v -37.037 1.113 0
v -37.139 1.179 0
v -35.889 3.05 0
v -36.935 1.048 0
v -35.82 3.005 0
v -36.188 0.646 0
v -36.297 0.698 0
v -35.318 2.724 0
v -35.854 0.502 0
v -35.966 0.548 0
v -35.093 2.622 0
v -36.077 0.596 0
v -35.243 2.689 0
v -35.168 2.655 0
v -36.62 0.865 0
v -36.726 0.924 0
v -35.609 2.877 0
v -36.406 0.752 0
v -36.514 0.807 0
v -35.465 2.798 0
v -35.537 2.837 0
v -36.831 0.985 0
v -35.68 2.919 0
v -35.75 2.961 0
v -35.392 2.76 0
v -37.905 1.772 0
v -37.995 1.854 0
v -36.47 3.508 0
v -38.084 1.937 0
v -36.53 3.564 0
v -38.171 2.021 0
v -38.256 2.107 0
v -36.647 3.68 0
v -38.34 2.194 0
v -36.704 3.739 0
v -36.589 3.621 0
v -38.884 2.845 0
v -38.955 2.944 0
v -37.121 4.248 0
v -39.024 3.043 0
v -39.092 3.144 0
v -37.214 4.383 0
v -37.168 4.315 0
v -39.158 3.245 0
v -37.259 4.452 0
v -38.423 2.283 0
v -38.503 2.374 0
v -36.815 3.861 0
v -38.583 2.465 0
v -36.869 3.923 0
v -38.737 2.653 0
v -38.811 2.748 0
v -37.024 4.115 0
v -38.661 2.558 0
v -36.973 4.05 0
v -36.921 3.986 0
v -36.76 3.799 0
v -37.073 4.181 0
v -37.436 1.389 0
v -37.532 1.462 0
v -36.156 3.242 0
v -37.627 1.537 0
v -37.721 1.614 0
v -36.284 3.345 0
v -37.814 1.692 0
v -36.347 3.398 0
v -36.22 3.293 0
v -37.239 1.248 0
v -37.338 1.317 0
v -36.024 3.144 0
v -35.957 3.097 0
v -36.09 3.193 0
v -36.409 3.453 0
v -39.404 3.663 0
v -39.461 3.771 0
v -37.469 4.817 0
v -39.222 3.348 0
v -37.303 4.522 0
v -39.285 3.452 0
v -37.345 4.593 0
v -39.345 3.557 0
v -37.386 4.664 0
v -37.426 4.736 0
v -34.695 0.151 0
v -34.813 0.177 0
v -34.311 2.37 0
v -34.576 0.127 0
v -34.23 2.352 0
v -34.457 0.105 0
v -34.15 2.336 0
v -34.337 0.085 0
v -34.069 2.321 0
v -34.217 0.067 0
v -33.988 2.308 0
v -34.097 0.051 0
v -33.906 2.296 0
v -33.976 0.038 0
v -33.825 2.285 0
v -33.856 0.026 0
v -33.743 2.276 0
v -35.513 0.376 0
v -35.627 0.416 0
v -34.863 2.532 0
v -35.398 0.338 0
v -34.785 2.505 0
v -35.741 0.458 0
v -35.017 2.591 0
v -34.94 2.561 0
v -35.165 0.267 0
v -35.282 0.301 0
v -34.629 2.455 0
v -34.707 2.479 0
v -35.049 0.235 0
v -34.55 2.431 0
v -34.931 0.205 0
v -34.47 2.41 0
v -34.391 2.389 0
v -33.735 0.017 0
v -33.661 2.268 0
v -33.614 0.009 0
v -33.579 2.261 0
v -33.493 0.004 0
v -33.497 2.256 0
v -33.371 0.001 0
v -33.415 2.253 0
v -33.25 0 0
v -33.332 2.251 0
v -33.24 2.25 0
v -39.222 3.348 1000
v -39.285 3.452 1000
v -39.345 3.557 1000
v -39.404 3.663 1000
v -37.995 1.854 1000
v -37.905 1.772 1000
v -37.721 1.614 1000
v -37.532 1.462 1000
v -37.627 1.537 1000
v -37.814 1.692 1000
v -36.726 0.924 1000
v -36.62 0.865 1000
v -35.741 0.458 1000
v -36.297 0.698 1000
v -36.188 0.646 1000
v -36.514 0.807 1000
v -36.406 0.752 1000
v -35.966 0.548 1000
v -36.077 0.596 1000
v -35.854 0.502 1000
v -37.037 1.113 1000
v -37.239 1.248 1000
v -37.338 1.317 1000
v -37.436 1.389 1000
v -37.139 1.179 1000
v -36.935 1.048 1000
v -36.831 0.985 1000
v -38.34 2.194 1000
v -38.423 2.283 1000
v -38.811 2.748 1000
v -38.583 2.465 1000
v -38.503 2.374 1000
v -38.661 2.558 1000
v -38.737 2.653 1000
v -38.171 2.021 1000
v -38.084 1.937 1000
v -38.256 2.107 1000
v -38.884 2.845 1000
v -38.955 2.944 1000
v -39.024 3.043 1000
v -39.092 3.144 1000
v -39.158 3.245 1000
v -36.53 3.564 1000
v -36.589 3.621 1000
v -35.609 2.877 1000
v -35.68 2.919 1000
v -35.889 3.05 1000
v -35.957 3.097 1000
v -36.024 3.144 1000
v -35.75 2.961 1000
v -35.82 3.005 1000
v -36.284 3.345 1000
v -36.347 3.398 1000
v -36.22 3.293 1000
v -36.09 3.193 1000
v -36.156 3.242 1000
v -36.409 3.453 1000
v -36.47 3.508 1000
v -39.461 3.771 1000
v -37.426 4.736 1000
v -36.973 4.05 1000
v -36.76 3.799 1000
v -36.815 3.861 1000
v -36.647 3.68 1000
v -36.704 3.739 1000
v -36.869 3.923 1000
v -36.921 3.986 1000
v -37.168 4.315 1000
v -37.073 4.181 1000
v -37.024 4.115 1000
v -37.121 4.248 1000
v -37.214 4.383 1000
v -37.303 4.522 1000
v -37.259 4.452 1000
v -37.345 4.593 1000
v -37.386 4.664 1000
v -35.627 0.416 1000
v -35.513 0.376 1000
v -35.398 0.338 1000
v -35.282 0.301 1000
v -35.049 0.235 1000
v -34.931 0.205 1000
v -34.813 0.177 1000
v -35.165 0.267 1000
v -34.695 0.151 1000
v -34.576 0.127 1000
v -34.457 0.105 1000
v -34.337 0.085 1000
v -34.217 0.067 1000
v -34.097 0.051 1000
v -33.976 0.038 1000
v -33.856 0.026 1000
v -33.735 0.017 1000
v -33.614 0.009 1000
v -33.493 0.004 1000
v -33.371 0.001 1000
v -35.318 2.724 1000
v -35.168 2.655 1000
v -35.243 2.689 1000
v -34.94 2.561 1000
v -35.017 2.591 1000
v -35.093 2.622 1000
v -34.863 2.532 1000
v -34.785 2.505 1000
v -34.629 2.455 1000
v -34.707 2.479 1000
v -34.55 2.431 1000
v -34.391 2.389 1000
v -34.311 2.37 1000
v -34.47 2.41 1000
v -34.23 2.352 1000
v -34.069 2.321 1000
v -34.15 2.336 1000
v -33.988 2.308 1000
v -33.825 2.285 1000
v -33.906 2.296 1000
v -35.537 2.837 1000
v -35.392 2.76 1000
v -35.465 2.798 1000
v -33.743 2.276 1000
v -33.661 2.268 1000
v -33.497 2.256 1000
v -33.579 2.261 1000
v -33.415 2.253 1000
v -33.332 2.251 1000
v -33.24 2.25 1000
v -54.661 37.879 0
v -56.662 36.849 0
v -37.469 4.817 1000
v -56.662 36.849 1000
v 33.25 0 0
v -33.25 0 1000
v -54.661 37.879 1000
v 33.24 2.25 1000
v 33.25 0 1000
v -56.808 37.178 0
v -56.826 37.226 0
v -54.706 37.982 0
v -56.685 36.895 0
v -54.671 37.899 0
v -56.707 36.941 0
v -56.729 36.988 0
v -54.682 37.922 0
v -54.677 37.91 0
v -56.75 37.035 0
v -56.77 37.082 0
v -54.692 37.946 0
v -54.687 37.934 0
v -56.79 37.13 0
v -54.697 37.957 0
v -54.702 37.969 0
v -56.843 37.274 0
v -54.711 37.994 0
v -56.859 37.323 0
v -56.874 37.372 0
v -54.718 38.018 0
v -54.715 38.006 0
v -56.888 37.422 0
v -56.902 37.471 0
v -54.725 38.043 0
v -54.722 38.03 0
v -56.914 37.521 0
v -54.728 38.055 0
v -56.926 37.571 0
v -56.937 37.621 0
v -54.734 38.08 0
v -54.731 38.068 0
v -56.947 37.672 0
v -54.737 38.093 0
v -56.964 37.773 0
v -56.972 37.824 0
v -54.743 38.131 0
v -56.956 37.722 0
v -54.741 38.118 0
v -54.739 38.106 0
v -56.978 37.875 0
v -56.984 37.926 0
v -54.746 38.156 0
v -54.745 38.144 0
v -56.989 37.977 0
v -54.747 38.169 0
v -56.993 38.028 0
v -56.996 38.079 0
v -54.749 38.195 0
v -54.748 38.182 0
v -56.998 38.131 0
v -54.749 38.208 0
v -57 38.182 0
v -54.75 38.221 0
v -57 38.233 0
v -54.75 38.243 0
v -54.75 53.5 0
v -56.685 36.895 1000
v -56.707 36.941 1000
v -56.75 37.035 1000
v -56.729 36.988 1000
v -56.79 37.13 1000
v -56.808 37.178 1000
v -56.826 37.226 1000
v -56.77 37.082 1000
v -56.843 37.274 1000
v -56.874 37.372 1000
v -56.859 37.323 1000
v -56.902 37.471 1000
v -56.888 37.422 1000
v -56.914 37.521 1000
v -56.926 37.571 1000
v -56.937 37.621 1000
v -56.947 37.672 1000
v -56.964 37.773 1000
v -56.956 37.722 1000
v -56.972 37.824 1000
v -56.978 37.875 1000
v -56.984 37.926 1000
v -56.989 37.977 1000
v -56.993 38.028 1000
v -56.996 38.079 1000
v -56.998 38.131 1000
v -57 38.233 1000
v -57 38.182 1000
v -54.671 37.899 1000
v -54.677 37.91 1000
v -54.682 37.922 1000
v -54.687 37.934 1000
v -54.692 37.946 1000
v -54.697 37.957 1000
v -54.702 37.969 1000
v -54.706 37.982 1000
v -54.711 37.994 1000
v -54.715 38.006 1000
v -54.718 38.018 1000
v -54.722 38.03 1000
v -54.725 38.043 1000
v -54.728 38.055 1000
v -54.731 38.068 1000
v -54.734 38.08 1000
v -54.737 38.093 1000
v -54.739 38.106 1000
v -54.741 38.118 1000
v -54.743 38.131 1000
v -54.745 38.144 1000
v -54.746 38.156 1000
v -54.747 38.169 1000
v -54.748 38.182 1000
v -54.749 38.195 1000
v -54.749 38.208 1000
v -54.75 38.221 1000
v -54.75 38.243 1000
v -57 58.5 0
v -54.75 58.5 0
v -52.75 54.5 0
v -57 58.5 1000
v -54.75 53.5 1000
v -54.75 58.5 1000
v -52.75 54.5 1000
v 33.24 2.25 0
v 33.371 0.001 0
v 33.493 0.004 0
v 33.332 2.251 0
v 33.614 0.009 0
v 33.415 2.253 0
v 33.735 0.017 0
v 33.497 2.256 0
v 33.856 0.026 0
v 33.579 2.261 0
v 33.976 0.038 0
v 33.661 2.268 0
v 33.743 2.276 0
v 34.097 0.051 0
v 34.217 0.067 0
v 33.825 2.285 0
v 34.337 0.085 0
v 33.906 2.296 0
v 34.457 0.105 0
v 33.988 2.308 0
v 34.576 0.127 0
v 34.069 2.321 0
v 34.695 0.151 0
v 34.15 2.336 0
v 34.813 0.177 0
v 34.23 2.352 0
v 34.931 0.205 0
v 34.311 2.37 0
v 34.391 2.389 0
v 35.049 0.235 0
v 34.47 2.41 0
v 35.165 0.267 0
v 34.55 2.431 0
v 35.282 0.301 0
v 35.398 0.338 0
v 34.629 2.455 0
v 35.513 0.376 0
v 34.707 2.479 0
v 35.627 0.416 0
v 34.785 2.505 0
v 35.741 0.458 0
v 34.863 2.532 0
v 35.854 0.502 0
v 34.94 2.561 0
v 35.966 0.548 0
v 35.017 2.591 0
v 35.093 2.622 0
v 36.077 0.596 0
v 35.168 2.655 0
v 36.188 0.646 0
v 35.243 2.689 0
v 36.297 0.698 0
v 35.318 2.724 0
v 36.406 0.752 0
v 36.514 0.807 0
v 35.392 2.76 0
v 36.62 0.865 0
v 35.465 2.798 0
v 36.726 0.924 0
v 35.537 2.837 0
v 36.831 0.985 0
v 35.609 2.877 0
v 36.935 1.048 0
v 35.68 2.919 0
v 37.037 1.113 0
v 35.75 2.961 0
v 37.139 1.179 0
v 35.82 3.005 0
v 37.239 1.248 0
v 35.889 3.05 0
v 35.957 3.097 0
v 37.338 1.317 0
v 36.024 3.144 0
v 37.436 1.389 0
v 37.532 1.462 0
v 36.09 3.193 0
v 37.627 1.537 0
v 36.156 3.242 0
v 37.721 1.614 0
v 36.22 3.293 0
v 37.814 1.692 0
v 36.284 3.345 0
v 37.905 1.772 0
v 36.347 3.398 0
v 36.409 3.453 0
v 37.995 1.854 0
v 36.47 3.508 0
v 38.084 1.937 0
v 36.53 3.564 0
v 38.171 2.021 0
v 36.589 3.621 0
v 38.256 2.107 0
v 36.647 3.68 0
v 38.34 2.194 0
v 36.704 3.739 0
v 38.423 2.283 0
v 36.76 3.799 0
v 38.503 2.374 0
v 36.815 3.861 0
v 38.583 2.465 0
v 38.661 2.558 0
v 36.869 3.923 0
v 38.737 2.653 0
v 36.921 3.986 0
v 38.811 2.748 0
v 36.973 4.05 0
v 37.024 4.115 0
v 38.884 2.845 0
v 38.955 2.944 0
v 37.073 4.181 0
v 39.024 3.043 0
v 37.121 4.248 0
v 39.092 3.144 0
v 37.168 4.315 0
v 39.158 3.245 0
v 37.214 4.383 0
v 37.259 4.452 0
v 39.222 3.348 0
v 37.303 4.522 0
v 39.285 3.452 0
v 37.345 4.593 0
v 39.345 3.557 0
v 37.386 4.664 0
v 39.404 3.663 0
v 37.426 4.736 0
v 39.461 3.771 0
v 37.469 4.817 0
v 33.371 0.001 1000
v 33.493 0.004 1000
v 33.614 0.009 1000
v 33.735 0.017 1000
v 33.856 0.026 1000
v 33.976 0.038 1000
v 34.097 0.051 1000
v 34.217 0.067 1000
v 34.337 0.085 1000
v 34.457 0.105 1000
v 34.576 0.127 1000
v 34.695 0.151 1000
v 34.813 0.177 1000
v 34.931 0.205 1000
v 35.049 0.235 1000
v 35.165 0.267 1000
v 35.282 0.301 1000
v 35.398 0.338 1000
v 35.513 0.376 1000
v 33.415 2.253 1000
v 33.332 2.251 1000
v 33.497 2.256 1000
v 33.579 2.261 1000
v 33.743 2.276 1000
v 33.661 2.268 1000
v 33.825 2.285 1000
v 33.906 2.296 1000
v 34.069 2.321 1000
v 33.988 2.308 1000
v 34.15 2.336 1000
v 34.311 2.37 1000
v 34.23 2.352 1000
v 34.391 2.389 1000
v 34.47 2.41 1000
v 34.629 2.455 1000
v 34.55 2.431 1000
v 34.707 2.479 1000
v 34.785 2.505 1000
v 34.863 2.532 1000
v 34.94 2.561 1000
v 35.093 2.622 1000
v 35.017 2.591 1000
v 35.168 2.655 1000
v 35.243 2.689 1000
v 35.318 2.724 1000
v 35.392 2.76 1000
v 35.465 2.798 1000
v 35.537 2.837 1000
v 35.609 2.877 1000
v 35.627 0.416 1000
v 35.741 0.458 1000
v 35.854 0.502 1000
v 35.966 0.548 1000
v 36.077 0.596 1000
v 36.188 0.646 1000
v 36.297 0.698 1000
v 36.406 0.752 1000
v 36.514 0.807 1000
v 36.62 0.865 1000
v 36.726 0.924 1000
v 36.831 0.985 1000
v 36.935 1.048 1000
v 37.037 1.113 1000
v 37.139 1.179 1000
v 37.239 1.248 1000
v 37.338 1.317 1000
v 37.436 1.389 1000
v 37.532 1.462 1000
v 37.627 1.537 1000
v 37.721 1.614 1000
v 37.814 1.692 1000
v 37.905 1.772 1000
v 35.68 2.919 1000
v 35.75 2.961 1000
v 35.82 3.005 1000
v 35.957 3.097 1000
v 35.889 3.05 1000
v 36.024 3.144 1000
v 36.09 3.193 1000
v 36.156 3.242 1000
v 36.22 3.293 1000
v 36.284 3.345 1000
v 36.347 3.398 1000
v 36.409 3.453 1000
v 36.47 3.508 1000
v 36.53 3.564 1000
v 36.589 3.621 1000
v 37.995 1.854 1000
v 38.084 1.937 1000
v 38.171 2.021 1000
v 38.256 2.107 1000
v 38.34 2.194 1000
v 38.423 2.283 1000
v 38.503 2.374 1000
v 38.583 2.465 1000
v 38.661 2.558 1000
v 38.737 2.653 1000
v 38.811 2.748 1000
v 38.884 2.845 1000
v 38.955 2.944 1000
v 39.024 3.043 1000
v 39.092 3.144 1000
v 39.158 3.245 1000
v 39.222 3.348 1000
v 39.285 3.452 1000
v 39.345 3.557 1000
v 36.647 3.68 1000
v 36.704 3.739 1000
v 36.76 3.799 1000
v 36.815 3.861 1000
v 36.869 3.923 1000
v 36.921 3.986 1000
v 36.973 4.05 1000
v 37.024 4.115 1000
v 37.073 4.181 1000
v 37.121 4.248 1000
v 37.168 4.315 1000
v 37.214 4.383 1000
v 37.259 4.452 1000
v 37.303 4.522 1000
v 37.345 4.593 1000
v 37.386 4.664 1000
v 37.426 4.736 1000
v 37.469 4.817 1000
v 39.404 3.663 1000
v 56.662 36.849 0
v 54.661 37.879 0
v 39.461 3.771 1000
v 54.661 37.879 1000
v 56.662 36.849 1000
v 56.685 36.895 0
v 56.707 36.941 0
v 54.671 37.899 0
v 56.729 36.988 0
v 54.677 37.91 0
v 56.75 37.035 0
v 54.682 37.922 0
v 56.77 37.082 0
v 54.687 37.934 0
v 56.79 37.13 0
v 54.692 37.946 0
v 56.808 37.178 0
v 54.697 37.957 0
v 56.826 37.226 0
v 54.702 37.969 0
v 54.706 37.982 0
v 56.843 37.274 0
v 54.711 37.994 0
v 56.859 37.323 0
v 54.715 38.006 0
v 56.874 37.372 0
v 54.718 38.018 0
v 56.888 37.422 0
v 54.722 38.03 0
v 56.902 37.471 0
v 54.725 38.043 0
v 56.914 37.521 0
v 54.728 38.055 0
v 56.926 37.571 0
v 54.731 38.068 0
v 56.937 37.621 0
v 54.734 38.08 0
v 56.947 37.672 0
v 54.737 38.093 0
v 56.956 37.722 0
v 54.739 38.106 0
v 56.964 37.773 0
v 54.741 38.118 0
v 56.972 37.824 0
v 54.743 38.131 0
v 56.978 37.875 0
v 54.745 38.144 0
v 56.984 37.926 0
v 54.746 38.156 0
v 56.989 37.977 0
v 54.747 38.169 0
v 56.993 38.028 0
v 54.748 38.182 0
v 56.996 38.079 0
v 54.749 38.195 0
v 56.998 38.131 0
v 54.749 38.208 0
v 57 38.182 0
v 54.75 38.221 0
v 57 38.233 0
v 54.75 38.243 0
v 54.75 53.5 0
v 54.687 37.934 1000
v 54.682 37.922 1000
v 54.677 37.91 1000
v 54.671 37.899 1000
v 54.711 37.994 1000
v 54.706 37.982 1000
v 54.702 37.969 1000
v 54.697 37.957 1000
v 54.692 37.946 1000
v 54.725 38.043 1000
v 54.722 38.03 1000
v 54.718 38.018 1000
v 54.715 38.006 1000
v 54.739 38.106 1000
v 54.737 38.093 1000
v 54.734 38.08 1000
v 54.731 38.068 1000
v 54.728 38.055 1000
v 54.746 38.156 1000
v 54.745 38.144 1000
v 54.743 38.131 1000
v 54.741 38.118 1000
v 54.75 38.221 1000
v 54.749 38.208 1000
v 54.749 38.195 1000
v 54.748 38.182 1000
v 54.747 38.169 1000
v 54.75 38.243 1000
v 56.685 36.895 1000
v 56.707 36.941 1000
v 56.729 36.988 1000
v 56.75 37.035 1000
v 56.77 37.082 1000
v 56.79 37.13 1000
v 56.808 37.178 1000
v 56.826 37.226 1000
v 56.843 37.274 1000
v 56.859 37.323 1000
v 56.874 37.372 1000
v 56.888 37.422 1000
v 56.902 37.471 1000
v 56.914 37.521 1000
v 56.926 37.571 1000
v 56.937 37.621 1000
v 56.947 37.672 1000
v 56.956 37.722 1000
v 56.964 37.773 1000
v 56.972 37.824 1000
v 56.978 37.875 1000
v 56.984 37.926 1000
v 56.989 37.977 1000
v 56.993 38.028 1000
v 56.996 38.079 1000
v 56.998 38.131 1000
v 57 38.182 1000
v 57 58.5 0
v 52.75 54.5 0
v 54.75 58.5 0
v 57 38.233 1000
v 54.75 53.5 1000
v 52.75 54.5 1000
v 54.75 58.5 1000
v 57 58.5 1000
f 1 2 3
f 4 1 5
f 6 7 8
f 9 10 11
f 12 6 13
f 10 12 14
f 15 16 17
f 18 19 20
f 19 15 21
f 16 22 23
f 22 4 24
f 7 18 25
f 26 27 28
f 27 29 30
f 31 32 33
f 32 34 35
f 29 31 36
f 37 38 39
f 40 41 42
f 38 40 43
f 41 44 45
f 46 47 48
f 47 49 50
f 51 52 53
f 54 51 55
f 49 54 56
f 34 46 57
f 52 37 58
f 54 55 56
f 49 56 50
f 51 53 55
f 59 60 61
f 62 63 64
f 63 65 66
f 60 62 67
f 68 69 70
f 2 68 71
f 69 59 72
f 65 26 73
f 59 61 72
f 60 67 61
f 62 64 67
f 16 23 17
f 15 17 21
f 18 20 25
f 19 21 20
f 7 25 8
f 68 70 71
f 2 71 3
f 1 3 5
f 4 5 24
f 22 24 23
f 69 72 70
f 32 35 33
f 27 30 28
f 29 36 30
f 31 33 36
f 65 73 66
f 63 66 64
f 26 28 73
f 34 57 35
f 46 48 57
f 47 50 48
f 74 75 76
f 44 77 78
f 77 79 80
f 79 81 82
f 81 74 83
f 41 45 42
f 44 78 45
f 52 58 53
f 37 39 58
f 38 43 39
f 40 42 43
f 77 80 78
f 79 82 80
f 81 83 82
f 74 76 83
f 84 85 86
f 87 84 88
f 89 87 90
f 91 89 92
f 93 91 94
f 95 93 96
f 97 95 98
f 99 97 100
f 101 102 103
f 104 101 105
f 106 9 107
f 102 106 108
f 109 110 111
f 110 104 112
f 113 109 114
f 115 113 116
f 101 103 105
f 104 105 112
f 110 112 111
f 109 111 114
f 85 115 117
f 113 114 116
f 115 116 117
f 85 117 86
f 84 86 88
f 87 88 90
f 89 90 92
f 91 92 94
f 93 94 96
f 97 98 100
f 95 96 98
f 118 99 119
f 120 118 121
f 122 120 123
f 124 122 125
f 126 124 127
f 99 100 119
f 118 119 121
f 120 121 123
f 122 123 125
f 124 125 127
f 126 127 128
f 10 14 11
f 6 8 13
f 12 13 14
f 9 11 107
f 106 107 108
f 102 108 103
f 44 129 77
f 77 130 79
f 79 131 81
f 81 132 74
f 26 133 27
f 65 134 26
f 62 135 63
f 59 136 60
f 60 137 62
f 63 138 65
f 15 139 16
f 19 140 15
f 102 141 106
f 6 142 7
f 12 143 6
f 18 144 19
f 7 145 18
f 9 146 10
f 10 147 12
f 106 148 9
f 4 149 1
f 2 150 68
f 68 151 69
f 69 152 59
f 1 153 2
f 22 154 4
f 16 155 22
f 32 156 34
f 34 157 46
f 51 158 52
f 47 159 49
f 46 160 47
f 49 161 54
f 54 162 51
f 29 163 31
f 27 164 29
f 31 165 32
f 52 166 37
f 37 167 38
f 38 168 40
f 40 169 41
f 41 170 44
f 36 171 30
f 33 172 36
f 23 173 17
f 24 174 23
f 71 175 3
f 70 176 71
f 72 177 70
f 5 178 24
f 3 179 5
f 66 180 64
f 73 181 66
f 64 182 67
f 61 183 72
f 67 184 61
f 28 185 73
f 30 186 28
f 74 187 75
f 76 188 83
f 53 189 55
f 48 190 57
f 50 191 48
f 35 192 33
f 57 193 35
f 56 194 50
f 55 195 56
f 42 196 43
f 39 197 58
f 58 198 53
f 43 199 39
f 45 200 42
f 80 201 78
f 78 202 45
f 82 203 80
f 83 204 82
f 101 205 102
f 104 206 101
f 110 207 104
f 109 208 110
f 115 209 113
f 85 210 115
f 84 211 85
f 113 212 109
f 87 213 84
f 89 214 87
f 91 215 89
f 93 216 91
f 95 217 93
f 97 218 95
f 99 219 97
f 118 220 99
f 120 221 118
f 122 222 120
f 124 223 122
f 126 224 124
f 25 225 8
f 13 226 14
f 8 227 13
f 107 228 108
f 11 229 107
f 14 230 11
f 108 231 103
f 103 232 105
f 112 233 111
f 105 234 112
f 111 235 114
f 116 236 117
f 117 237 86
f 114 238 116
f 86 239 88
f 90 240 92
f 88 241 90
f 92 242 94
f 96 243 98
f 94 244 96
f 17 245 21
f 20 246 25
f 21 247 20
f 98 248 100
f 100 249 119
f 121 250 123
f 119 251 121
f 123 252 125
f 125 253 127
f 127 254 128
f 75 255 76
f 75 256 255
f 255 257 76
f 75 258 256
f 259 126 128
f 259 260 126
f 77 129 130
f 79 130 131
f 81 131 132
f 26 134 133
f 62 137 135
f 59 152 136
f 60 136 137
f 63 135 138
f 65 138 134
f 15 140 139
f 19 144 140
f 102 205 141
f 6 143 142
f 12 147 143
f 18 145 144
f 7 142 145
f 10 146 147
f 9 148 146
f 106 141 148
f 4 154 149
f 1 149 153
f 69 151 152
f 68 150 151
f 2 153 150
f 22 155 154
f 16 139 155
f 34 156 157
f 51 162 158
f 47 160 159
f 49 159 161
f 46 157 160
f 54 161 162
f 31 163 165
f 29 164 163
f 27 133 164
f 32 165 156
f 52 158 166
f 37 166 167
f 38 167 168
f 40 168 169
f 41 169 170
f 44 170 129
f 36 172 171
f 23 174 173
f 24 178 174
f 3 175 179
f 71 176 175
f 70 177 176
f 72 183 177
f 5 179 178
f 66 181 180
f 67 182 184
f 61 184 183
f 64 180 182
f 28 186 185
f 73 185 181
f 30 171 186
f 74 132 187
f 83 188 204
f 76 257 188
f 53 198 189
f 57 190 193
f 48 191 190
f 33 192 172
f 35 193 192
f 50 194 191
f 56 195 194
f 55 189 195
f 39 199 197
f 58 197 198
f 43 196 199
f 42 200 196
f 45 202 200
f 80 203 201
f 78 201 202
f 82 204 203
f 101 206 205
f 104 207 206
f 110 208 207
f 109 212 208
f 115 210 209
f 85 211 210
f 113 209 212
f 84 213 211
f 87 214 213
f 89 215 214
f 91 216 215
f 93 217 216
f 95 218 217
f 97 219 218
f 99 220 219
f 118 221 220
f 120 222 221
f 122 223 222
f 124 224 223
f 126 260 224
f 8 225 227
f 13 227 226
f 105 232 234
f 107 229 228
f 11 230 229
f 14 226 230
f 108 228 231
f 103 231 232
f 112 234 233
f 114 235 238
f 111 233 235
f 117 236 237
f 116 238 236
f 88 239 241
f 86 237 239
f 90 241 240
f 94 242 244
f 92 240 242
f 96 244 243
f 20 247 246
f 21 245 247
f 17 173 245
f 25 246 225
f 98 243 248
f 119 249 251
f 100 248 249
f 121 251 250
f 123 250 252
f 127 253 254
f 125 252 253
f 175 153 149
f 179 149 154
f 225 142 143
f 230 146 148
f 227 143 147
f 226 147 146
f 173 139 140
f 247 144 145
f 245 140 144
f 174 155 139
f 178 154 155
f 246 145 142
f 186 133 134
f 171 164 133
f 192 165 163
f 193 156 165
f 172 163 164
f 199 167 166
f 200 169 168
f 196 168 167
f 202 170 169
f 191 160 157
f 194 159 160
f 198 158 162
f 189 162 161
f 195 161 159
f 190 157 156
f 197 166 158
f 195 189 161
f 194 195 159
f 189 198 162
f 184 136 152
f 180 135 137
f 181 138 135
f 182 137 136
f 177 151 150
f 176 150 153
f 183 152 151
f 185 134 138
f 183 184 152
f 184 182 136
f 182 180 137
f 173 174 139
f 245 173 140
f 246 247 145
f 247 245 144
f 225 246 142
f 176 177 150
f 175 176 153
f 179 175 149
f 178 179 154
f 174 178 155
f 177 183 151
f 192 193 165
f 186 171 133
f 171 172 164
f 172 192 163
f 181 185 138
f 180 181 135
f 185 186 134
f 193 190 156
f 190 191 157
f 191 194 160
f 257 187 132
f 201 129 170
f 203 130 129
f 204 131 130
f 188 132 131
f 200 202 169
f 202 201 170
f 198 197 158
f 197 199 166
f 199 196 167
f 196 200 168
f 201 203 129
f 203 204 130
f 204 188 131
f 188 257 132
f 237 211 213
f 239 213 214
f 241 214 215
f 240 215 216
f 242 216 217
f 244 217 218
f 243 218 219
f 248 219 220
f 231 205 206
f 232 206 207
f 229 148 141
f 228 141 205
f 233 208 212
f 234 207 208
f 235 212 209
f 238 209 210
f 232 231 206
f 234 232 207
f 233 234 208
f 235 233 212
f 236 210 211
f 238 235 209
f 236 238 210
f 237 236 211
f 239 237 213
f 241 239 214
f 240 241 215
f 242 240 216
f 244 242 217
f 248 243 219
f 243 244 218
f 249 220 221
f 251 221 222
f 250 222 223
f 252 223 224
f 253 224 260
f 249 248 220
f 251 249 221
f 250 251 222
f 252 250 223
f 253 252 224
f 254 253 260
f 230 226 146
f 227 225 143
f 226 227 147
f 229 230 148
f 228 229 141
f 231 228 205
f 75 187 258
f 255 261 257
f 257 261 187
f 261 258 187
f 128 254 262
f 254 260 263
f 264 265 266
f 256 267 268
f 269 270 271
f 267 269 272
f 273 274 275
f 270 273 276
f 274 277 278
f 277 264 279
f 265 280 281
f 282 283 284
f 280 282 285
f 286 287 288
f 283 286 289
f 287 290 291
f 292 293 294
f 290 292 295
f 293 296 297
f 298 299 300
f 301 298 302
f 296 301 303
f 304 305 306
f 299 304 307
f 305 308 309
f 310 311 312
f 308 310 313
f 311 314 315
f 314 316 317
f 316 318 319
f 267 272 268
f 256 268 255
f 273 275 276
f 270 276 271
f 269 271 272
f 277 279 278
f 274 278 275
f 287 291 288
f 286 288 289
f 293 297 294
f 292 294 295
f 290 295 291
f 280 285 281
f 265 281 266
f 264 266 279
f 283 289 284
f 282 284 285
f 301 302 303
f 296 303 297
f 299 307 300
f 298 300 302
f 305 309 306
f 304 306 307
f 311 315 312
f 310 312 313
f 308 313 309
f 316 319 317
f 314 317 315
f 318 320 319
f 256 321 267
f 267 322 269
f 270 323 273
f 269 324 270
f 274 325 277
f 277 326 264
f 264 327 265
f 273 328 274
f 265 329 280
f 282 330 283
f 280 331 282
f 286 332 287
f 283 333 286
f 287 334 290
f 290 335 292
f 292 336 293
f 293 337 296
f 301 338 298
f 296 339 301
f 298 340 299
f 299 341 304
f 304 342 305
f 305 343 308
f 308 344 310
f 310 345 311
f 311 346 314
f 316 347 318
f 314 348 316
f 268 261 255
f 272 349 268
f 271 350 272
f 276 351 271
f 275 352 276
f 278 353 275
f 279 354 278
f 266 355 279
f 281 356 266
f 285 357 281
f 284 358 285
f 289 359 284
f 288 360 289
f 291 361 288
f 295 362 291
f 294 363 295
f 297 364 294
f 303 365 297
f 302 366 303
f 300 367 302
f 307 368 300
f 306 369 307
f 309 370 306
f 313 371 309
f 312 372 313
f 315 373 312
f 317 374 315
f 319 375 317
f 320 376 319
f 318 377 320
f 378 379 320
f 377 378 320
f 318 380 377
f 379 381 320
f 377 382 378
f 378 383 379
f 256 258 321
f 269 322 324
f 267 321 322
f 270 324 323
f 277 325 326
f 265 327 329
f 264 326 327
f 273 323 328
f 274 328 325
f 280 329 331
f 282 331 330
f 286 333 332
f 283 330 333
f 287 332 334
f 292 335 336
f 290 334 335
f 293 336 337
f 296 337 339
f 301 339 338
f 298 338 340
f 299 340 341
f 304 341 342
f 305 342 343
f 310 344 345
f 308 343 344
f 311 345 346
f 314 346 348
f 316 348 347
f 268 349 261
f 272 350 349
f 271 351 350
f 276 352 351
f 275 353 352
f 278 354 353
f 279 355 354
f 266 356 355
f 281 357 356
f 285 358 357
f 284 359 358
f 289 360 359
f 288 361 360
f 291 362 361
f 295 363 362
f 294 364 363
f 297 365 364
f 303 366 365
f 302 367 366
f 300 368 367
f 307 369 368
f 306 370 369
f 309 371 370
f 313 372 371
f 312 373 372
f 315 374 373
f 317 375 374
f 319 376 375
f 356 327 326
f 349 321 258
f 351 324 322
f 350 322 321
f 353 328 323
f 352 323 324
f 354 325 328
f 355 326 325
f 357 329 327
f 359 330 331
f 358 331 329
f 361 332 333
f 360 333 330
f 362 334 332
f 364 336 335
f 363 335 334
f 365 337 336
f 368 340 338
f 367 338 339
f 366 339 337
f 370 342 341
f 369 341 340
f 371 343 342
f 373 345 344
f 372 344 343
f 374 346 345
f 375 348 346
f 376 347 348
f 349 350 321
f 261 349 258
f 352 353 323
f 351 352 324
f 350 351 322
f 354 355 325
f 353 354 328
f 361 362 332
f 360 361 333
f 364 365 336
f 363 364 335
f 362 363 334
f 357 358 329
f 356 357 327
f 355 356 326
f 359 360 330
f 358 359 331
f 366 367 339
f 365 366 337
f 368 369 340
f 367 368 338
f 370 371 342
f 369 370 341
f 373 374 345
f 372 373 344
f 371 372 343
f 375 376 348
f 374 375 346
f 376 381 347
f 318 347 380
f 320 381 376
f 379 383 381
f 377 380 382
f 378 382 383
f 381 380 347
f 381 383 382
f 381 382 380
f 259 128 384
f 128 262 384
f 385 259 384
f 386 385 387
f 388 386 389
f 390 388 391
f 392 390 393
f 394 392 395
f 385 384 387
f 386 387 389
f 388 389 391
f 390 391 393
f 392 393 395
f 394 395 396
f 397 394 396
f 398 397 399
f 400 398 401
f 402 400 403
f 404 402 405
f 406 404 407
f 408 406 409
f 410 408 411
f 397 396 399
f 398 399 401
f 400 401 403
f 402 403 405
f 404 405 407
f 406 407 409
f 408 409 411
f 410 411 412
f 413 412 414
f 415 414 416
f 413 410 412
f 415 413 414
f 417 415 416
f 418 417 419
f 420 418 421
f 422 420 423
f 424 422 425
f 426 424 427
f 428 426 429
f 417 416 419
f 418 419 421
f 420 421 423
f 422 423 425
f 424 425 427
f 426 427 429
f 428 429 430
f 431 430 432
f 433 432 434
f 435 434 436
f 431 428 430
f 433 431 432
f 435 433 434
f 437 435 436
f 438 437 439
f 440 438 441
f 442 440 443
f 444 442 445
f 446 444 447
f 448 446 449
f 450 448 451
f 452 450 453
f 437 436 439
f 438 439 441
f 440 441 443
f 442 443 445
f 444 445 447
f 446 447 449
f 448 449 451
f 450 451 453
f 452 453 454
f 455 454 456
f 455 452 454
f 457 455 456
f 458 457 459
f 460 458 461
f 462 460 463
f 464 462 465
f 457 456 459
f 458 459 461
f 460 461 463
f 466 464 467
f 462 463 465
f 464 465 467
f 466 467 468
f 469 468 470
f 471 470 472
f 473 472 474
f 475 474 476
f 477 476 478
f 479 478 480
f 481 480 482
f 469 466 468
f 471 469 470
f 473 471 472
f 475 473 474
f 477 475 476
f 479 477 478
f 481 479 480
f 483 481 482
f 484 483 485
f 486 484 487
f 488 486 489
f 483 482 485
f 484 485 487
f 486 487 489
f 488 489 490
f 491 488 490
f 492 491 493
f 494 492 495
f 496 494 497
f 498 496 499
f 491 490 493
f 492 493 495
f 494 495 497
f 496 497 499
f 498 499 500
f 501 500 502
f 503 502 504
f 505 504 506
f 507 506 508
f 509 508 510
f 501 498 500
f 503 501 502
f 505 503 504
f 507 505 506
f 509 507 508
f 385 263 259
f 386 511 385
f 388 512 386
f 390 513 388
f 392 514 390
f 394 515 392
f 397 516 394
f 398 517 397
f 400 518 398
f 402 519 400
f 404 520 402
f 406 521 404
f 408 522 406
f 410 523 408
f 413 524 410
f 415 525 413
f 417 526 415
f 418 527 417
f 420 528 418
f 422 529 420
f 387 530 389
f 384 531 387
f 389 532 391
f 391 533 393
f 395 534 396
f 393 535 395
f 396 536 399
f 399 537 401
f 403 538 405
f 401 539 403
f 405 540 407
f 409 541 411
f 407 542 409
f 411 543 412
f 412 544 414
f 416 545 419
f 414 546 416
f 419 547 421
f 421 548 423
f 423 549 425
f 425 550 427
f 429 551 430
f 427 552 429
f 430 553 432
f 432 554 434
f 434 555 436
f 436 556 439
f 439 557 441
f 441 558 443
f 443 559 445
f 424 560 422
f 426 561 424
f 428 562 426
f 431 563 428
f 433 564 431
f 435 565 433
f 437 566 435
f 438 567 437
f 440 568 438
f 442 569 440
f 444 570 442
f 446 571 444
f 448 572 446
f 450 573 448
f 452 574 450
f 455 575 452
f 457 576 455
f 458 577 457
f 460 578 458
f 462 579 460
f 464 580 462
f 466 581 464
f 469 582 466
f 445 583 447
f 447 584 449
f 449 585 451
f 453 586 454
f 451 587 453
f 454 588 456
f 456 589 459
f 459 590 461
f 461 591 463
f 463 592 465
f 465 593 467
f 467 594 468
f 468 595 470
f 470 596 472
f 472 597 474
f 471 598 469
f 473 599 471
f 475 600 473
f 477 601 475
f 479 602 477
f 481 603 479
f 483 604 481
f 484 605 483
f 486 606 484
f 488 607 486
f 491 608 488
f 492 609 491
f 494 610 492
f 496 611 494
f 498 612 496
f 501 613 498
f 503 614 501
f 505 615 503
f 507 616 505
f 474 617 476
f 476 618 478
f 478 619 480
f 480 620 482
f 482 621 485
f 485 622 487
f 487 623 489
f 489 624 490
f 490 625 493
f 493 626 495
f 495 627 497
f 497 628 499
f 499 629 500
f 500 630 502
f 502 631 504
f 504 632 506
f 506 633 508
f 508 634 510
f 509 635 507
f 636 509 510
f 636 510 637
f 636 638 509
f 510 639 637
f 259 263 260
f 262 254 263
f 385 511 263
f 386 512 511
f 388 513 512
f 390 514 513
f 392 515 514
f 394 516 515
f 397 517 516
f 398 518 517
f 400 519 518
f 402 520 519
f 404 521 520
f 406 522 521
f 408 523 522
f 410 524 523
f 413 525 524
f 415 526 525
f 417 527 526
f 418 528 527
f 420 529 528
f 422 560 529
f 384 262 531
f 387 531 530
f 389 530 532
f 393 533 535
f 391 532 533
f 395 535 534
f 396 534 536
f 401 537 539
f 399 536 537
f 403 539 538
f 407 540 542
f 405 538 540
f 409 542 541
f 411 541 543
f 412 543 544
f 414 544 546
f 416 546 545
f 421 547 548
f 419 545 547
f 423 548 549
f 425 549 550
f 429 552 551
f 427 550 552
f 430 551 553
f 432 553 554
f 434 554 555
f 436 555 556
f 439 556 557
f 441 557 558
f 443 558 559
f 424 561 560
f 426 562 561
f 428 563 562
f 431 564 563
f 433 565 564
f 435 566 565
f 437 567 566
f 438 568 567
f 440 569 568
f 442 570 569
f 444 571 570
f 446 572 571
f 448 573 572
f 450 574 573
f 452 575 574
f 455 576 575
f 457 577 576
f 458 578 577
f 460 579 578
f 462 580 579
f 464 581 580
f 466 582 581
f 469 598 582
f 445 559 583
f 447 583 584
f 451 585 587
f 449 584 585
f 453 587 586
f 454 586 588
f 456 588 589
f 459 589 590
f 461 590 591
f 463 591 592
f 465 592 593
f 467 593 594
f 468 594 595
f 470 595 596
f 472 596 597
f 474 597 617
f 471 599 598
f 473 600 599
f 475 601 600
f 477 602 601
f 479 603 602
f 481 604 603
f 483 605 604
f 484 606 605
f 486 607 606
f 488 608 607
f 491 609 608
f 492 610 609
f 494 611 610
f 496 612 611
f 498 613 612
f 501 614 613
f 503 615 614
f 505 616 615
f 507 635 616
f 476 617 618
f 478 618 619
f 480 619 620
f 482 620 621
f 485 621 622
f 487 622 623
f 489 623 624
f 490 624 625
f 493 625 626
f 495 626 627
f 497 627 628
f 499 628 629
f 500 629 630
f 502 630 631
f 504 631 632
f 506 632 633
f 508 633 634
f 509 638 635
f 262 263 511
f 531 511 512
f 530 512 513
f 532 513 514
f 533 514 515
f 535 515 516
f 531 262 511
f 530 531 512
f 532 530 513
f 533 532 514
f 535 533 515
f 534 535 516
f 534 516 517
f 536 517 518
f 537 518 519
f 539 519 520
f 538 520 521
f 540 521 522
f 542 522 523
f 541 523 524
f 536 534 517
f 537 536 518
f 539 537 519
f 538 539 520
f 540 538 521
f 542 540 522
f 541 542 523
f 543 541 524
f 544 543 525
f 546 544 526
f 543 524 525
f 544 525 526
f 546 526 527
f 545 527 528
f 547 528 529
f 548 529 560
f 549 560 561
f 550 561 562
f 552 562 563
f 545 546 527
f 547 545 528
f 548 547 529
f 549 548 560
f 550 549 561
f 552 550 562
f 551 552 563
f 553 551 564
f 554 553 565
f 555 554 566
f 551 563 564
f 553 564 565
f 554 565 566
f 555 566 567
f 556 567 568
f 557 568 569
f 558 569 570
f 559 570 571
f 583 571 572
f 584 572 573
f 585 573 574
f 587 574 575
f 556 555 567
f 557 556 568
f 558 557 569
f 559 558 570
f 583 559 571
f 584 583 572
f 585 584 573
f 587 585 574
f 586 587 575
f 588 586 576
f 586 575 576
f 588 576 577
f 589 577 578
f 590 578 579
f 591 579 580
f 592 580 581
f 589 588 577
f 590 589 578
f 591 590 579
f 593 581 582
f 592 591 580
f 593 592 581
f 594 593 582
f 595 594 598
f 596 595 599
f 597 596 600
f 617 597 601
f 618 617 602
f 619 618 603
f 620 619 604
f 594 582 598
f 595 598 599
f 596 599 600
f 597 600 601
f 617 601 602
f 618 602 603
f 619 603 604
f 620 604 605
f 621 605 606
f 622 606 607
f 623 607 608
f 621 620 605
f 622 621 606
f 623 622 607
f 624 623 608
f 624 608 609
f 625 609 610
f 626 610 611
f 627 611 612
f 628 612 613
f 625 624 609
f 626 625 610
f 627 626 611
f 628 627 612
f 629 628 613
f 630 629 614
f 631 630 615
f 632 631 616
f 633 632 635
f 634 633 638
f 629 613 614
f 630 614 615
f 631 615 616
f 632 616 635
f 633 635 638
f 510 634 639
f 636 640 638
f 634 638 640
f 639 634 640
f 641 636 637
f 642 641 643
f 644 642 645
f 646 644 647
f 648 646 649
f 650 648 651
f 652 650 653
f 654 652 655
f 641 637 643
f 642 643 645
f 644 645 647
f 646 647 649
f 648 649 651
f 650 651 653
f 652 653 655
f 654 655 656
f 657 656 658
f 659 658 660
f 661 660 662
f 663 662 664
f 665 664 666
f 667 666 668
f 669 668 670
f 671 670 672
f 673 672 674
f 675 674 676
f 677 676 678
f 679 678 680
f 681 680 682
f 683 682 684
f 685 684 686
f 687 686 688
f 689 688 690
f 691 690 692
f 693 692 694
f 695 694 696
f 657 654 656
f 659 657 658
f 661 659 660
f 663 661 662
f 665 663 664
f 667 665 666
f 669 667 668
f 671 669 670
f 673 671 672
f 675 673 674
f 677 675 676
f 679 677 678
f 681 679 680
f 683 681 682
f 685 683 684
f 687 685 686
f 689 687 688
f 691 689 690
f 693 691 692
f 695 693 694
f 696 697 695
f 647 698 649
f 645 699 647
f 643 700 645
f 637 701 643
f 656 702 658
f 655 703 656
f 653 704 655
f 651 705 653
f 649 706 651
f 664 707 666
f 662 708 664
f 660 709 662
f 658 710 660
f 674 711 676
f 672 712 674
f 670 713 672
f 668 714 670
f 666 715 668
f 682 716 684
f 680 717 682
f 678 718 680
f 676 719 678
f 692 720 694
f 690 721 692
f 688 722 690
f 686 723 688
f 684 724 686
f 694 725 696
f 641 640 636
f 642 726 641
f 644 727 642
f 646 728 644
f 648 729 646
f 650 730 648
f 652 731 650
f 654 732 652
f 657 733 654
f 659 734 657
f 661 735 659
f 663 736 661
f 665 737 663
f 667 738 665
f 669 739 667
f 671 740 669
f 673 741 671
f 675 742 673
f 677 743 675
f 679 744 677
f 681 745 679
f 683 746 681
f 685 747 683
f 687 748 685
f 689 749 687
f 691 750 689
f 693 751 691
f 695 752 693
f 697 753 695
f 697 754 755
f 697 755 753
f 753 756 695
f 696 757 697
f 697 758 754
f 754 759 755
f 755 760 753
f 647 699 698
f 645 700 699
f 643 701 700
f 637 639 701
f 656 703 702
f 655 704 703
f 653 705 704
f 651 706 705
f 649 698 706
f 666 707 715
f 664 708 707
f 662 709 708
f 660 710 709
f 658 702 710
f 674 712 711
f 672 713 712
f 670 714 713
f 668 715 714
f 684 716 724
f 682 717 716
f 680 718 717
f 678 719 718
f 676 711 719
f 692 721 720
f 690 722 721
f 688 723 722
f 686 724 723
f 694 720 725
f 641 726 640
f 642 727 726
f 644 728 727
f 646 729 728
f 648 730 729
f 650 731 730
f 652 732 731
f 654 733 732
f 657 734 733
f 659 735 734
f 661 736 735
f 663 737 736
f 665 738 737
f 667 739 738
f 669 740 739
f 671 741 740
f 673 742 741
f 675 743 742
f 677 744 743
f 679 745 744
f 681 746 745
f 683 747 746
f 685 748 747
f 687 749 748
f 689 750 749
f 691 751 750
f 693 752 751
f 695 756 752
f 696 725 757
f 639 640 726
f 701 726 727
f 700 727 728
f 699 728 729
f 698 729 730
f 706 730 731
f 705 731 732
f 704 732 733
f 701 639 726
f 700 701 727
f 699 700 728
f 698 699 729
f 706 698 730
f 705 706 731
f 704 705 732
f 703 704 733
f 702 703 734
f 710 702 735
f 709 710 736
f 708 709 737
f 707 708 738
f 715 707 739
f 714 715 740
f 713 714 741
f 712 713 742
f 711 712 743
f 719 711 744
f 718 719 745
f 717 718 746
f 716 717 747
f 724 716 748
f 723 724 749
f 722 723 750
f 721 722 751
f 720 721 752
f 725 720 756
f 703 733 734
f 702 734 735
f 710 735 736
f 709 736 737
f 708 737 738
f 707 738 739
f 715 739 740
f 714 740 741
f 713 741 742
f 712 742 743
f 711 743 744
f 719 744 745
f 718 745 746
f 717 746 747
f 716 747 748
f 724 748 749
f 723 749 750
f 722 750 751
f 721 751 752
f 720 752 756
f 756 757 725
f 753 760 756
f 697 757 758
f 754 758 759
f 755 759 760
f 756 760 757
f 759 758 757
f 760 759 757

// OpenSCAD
$fn = 50;

difference() {
	union() {
		linear_extrude(height = 1000.0) {
			polygon(points = [[56.9995601, 38.1820114], [56.9982404, 38.1306519], [56.9960415, 38.0793225], [56.9929638, 38.0280383], [56.9890084, 37.9768144], [56.9841763, 37.9256657], [56.978469, 37.8746072], [56.9718882, 37.823654], [56.9644358, 37.7728209], [56.956114, 37.7221229], [56.9469252, 37.6715749], [56.9368722, 37.6211916], [56.9259578, 37.5709879], [56.9141852, 37.5209784], [56.901558, 37.4711779], [56.8880798, 37.4216009], [56.8737546, 37.372262], [56.8585866, 37.3231757], [56.8425802, 37.2743563], [56.8257401, 37.2258182], [56.8080713, 37.1775755], [56.7895789, 37.1296426], [56.7702684, 37.0820333], [56.7501454, 37.0347617], [56.7292159, 36.9878416], [56.7074859, 36.9412868], [56.6849619, 36.895111], [56.6616504, 36.8493277], [39.460676, 3.7705308], [39.4038067, 3.663443], [39.3450911, 3.5573563], [39.2845467, 3.4523025], [39.2221918, 3.3483131], [39.158045, 3.2454194], [39.0921257, 3.1436522], [39.0244535, 3.043042], [38.9550488, 2.9436191], [38.8839324, 2.8454133], [38.8111257, 2.748454], [38.7366505, 2.6527704], [38.660529, 2.5583911], [38.5827843, 2.4653444], [38.5034396, 2.3736583], [38.4225187, 2.2833604], [38.3400458, 2.1944775], [38.2560458, 2.1070366], [38.1705439, 2.0210637], [38.0835656, 1.9365846], [37.9951371, 1.8536249], [37.905285, 1.7722092], [37.8140361, 1.692362], [37.7214179, 1.6141074], [37.6274581, 1.5374687], [37.532185, 1.4624691], [37.435627, 1.3891309], [37.3378133, 1.3174761], [37.2387731, 1.2475264], [37.1385362, 1.1793026], [37.0371326, 1.1128253], [36.9345928, 1.0481143], [36.8309475, 0.9851892], [36.7262278, 0.9240687], [36.6204652, 0.8647712], [36.5136914, 0.8073146], [36.4059383, 0.751716], [36.2972384, 0.6979921], [36.1876243, 0.6461591], [36.0771288, 0.5962325], [35.9657851, 0.5482272], [35.8536266, 0.5021578], [35.7406869, 0.4580379], [35.627, 0.4158809], [35.5126, 0.3756994], [35.3975211, 0.3375055], [35.2817979, 0.3013105], [35.1654652, 0.2671254], [35.0485578, 0.2349605], [34.9311108, 0.2048253], [34.8131595, 0.176729], [34.6947392, 0.1506799], [34.5758855, 0.1266858], [34.456634, 0.104754], [34.3370205, 0.0848911], [34.2170809, 0.067103], [34.0968512, 0.051395], [33.9763674, 0.0377719], [33.8556658, 0.0262377], [33.7347825, 0.0167959], [33.6137537, 0.0094493], [33.4926159, 0.0042002], [33.3714054, 0.0010501], [33.2501584, 0.0], [-33.2501584, 0.0], [-33.3714054, 0.0010501], [-33.4926159, 0.0042002], [-33.6137537, 0.0094493], [-33.7347825, 0.0167959], [-33.8556658, 0.0262377], [-33.9763674, 0.0377719], [-34.0968512, 0.051395], [-34.2170809, 0.067103], [-34.3370205, 0.0848911], [-34.456634, 0.104754], [-34.5758855, 0.1266858], [-34.6947392, 0.1506799], [-34.8131595, 0.176729], [-34.9311108, 0.2048253], [-35.0485578, 0.2349605], [-35.1654652, 0.2671254], [-35.2817979, 0.3013105], [-35.3975211, 0.3375055], [-35.5126, 0.3756994], [-35.627, 0.4158809], [-35.7406869, 0.4580379], [-35.8536266, 0.5021578], [-35.9657851, 0.5482272], [-36.0771288, 0.5962325], [-36.1876243, 0.6461591], [-36.2972384, 0.6979921], [-36.4059383, 0.751716], [-36.5136914, 0.8073146], [-36.6204652, 0.8647712], [-36.7262278, 0.9240687], [-36.8309475, 0.9851892], [-36.9345928, 1.0481143], [-37.0371326, 1.1128253], [-37.1385362, 1.1793026], [-37.2387731, 1.2475264], [-37.3378133, 1.3174761], [-37.435627, 1.3891309], [-37.532185, 1.4624691], [-37.6274581, 1.5374687], [-37.7214179, 1.6141074], [-37.8140361, 1.692362], [-37.905285, 1.7722092], [-37.9951371, 1.8536249], [-38.0835656, 1.9365846], [-38.1705439, 2.0210637], [-38.2560458, 2.1070366], [-38.3400458, 2.1944775], [-38.4225187, 2.2833604], [-38.5034396, 2.3736583], [-38.5827843, 2.4653444], [-38.660529, 2.5583911], [-38.7366505, 2.6527704], [-38.8111257, 2.748454], [-38.8839324, 2.8454133], [-38.9550488, 2.9436191], [-39.0244535, 3.043042], [-39.0921257, 3.1436522], [-39.158045, 3.2454194], [-39.2221918, 3.3483131], [-39.2845467, 3.4523025], [-39.3450911, 3.5573563], [-39.4038067, 3.663443], [-39.460676, 3.7705308], [-56.6616504, 36.8493277], [-56.6849619, 36.895111], [-56.7074859, 36.9412868], [-56.7292159, 36.9878416], [-56.7501454, 37.0347617], [-56.7702684, 37.0820333], [-56.7895789, 37.1296426], [-56.8080713, 37.1775755], [-56.8257401, 37.2258182], [-56.8425802, 37.2743563], [-56.8585866, 37.3231757], [-56.8737546, 37.372262], [-56.8880798, 37.4216009], [-56.901558, 37.4711779], [-56.9141852, 37.5209784], [-56.9259578, 37.5709879], [-56.9368722, 37.6211916], [-56.9469252, 37.6715749], [-56.956114, 37.7221229], [-56.9644358, 37.7728209], [-56.9718882, 37.823654], [-56.978469, 37.8746072], [-56.9841763, 37.9256657], [-56.9890084, 37.9768144], [-56.9929638, 38.0280383], [-56.9960415, 38.0793225], [-56.9982404, 38.1306519], [-56.9995601, 38.1820114], [-57.0, 38.2333859], [-57.0, 58.5], [-54.75, 58.5], [-52.75, 54.5], [-54.75, 53.5], [-54.75, 38.2430192], [-54.7498075, 38.2205437], [-54.7494777, 38.2077052], [-54.748928, 38.1948743], [-54.7481587, 38.1820547], [-54.7471699, 38.1692501], [-54.745962, 38.1564643], [-54.7445354, 38.1437011], [-54.7428903, 38.1309642], [-54.7410275, 38.1182573], [-54.7389472, 38.1055842], [-54.7366503, 38.0929486], [-54.7341373, 38.0803542], [-54.731409, 38.0678046], [-54.7284662, 38.0553036], [-54.7253097, 38.0428549], [-54.7219405, 38.030462], [-54.7183596, 38.0181286], [-54.714568, 38.0058584], [-54.7105669, 37.9936549], [-54.7063573, 37.9815217], [-54.7019406, 37.9694623], [-54.697318, 37.9574804], [-54.6924909, 37.9455794], [-54.6874607, 37.9337628], [-54.6822289, 37.9220341], [-54.676797, 37.9103967], [-54.6711666, 37.898854], [-54.6609683, 37.8788246], [-37.4689335, 4.8172192], [-37.4257742, 4.735948], [-37.3859321, 4.6639618], [-37.3448492, 4.5926766], [-37.3025377, 4.5221136], [-37.2590103, 4.4522941], [-37.2142801, 4.383239], [-37.1683605, 4.3149691], [-37.1212653, 4.2475048], [-37.0730086, 4.1808663], [-37.0236049, 4.1150736], [-36.973069, 4.0501466], [-36.9214161, 3.9861046], [-36.8686617, 3.922967], [-36.8148216, 3.8607525], [-36.7599119, 3.79948], [-36.7039492, 3.7391677], [-36.6469503, 3.6798338], [-36.5889321, 3.6214961], [-36.5299122, 3.5641721], [-36.4699082, 3.5078789], [-36.4089382, 3.4526335], [-36.3470204, 3.3984525], [-36.2841734, 3.3453521], [-36.2204161, 3.2933482], [-36.1557677, 3.2424565], [-36.0902474, 3.1926922], [-36.023875, 3.1440702], [-35.9566703, 3.0966051], [-35.8886536, 3.0503112], [-35.8198453, 3.0052024], [-35.7502659, 2.9612922], [-35.6799364, 2.9185937], [-35.6088779, 2.8771199], [-35.5371117, 2.836883], [-35.4646593, 2.7978953], [-35.3915424, 2.7601683], [-35.3177831, 2.7237135], [-35.2434034, 2.6885417], [-35.1684256, 2.6546635], [-35.0928723, 2.6220891], [-35.0167661, 2.5908282], [-34.9401299, 2.5608903], [-34.8629866, 2.5322843], [-34.7853593, 2.5050187], [-34.7072715, 2.4791019], [-34.6287465, 2.4545415], [-34.5498078, 2.4313449], [-34.4704792, 2.409519], [-34.3907844, 2.3890705], [-34.3107475, 2.3700055], [-34.2303922, 2.3523296], [-34.1497429, 2.3360482], [-34.0688237, 2.3211662], [-33.9876589, 2.3076881], [-33.9062727, 2.2956178], [-33.8246897, 2.284959], [-33.7429343, 2.2757148], [-33.6610311, 2.2678882], [-33.5790046, 2.2614814], [-33.4968794, 2.2564963], [-33.4146802, 2.2529345], [-33.3324317, 2.250797], [-33.2404148, 2.25], [33.2404148, 2.25], [33.3324317, 2.250797], [33.4146802, 2.2529345], [33.4968794, 2.2564963], [33.5790046, 2.2614814], [33.6610311, 2.2678882], [33.7429343, 2.2757148], [33.8246897, 2.284959], [33.9062727, 2.2956178], [33.9876589, 2.3076881], [34.0688237, 2.3211662], [34.1497429, 2.3360482], [34.2303922, 2.3523296], [34.3107475, 2.3700055], [34.3907844, 2.3890705], [34.4704792, 2.409519], [34.5498078, 2.4313449], [34.6287465, 2.4545415], [34.7072715, 2.4791019], [34.7853593, 2.5050187], [34.8629866, 2.5322843], [34.9401299, 2.5608903], [35.0167661, 2.5908282], [35.0928723, 2.6220891], [35.1684256, 2.6546635], [35.2434034, 2.6885417], [35.3177831, 2.7237135], [35.3915424, 2.7601683], [35.4646593, 2.7978953], [35.5371117, 2.836883], [35.6088779, 2.8771199], [35.6799364, 2.9185937], [35.7502659, 2.9612922], [35.8198453, 3.0052024], [35.8886536, 3.0503112], [35.9566703, 3.0966051], [36.023875, 3.1440702], [36.0902474, 3.1926922], [36.1557677, 3.2424565], [36.2204161, 3.2933482], [36.2841734, 3.3453521], [36.3470204, 3.3984525], [36.4089382, 3.4526335], [36.4699082, 3.5078789], [36.5299122, 3.5641721], [36.5889321, 3.6214961], [36.6469503, 3.6798338], [36.7039492, 3.7391677], [36.7599119, 3.79948], [36.8148216, 3.8607525], [36.8686617, 3.922967], [36.9214161, 3.9861046], [36.973069, 4.0501466], [37.0236049, 4.1150736], [37.0730086, 4.1808663], [37.1212653, 4.2475048], [37.1683605, 4.3149691], [37.2142801, 4.383239], [37.2590103, 4.4522941], [37.3025377, 4.5221136], [37.3448492, 4.5926766], [37.3859321, 4.6639618], [37.4257742, 4.735948], [37.4689335, 4.8172192], [54.6609683, 37.8788246], [54.6711666, 37.898854], [54.676797, 37.9103967], [54.6822289, 37.9220341], [54.6874607, 37.9337628], [54.6924909, 37.9455794], [54.697318, 37.9574804], [54.7019406, 37.9694623], [54.7063573, 37.9815217], [54.7105669, 37.9936549], [54.714568, 38.0058584], [54.7183596, 38.0181286], [54.7219405, 38.030462], [54.7253097, 38.0428549], [54.7284662, 38.0553036], [54.731409, 38.0678046], [54.7341373, 38.0803542], [54.7366503, 38.0929486], [54.7389472, 38.1055842], [54.7410275, 38.1182573], [54.7428903, 38.1309642], [54.7445354, 38.1437011], [54.745962, 38.1564643], [54.7471699, 38.1692501], [54.7481587, 38.1820547], [54.748928, 38.1948743], [54.7494777, 38.2077052], [54.7498075, 38.2205437], [54.75, 38.2430192], [54.75, 53.5], [52.75, 54.5], [54.75, 58.5], [57.0, 58.5], [57.0, 38.2333859]]);
		}
	}
	union();
}
